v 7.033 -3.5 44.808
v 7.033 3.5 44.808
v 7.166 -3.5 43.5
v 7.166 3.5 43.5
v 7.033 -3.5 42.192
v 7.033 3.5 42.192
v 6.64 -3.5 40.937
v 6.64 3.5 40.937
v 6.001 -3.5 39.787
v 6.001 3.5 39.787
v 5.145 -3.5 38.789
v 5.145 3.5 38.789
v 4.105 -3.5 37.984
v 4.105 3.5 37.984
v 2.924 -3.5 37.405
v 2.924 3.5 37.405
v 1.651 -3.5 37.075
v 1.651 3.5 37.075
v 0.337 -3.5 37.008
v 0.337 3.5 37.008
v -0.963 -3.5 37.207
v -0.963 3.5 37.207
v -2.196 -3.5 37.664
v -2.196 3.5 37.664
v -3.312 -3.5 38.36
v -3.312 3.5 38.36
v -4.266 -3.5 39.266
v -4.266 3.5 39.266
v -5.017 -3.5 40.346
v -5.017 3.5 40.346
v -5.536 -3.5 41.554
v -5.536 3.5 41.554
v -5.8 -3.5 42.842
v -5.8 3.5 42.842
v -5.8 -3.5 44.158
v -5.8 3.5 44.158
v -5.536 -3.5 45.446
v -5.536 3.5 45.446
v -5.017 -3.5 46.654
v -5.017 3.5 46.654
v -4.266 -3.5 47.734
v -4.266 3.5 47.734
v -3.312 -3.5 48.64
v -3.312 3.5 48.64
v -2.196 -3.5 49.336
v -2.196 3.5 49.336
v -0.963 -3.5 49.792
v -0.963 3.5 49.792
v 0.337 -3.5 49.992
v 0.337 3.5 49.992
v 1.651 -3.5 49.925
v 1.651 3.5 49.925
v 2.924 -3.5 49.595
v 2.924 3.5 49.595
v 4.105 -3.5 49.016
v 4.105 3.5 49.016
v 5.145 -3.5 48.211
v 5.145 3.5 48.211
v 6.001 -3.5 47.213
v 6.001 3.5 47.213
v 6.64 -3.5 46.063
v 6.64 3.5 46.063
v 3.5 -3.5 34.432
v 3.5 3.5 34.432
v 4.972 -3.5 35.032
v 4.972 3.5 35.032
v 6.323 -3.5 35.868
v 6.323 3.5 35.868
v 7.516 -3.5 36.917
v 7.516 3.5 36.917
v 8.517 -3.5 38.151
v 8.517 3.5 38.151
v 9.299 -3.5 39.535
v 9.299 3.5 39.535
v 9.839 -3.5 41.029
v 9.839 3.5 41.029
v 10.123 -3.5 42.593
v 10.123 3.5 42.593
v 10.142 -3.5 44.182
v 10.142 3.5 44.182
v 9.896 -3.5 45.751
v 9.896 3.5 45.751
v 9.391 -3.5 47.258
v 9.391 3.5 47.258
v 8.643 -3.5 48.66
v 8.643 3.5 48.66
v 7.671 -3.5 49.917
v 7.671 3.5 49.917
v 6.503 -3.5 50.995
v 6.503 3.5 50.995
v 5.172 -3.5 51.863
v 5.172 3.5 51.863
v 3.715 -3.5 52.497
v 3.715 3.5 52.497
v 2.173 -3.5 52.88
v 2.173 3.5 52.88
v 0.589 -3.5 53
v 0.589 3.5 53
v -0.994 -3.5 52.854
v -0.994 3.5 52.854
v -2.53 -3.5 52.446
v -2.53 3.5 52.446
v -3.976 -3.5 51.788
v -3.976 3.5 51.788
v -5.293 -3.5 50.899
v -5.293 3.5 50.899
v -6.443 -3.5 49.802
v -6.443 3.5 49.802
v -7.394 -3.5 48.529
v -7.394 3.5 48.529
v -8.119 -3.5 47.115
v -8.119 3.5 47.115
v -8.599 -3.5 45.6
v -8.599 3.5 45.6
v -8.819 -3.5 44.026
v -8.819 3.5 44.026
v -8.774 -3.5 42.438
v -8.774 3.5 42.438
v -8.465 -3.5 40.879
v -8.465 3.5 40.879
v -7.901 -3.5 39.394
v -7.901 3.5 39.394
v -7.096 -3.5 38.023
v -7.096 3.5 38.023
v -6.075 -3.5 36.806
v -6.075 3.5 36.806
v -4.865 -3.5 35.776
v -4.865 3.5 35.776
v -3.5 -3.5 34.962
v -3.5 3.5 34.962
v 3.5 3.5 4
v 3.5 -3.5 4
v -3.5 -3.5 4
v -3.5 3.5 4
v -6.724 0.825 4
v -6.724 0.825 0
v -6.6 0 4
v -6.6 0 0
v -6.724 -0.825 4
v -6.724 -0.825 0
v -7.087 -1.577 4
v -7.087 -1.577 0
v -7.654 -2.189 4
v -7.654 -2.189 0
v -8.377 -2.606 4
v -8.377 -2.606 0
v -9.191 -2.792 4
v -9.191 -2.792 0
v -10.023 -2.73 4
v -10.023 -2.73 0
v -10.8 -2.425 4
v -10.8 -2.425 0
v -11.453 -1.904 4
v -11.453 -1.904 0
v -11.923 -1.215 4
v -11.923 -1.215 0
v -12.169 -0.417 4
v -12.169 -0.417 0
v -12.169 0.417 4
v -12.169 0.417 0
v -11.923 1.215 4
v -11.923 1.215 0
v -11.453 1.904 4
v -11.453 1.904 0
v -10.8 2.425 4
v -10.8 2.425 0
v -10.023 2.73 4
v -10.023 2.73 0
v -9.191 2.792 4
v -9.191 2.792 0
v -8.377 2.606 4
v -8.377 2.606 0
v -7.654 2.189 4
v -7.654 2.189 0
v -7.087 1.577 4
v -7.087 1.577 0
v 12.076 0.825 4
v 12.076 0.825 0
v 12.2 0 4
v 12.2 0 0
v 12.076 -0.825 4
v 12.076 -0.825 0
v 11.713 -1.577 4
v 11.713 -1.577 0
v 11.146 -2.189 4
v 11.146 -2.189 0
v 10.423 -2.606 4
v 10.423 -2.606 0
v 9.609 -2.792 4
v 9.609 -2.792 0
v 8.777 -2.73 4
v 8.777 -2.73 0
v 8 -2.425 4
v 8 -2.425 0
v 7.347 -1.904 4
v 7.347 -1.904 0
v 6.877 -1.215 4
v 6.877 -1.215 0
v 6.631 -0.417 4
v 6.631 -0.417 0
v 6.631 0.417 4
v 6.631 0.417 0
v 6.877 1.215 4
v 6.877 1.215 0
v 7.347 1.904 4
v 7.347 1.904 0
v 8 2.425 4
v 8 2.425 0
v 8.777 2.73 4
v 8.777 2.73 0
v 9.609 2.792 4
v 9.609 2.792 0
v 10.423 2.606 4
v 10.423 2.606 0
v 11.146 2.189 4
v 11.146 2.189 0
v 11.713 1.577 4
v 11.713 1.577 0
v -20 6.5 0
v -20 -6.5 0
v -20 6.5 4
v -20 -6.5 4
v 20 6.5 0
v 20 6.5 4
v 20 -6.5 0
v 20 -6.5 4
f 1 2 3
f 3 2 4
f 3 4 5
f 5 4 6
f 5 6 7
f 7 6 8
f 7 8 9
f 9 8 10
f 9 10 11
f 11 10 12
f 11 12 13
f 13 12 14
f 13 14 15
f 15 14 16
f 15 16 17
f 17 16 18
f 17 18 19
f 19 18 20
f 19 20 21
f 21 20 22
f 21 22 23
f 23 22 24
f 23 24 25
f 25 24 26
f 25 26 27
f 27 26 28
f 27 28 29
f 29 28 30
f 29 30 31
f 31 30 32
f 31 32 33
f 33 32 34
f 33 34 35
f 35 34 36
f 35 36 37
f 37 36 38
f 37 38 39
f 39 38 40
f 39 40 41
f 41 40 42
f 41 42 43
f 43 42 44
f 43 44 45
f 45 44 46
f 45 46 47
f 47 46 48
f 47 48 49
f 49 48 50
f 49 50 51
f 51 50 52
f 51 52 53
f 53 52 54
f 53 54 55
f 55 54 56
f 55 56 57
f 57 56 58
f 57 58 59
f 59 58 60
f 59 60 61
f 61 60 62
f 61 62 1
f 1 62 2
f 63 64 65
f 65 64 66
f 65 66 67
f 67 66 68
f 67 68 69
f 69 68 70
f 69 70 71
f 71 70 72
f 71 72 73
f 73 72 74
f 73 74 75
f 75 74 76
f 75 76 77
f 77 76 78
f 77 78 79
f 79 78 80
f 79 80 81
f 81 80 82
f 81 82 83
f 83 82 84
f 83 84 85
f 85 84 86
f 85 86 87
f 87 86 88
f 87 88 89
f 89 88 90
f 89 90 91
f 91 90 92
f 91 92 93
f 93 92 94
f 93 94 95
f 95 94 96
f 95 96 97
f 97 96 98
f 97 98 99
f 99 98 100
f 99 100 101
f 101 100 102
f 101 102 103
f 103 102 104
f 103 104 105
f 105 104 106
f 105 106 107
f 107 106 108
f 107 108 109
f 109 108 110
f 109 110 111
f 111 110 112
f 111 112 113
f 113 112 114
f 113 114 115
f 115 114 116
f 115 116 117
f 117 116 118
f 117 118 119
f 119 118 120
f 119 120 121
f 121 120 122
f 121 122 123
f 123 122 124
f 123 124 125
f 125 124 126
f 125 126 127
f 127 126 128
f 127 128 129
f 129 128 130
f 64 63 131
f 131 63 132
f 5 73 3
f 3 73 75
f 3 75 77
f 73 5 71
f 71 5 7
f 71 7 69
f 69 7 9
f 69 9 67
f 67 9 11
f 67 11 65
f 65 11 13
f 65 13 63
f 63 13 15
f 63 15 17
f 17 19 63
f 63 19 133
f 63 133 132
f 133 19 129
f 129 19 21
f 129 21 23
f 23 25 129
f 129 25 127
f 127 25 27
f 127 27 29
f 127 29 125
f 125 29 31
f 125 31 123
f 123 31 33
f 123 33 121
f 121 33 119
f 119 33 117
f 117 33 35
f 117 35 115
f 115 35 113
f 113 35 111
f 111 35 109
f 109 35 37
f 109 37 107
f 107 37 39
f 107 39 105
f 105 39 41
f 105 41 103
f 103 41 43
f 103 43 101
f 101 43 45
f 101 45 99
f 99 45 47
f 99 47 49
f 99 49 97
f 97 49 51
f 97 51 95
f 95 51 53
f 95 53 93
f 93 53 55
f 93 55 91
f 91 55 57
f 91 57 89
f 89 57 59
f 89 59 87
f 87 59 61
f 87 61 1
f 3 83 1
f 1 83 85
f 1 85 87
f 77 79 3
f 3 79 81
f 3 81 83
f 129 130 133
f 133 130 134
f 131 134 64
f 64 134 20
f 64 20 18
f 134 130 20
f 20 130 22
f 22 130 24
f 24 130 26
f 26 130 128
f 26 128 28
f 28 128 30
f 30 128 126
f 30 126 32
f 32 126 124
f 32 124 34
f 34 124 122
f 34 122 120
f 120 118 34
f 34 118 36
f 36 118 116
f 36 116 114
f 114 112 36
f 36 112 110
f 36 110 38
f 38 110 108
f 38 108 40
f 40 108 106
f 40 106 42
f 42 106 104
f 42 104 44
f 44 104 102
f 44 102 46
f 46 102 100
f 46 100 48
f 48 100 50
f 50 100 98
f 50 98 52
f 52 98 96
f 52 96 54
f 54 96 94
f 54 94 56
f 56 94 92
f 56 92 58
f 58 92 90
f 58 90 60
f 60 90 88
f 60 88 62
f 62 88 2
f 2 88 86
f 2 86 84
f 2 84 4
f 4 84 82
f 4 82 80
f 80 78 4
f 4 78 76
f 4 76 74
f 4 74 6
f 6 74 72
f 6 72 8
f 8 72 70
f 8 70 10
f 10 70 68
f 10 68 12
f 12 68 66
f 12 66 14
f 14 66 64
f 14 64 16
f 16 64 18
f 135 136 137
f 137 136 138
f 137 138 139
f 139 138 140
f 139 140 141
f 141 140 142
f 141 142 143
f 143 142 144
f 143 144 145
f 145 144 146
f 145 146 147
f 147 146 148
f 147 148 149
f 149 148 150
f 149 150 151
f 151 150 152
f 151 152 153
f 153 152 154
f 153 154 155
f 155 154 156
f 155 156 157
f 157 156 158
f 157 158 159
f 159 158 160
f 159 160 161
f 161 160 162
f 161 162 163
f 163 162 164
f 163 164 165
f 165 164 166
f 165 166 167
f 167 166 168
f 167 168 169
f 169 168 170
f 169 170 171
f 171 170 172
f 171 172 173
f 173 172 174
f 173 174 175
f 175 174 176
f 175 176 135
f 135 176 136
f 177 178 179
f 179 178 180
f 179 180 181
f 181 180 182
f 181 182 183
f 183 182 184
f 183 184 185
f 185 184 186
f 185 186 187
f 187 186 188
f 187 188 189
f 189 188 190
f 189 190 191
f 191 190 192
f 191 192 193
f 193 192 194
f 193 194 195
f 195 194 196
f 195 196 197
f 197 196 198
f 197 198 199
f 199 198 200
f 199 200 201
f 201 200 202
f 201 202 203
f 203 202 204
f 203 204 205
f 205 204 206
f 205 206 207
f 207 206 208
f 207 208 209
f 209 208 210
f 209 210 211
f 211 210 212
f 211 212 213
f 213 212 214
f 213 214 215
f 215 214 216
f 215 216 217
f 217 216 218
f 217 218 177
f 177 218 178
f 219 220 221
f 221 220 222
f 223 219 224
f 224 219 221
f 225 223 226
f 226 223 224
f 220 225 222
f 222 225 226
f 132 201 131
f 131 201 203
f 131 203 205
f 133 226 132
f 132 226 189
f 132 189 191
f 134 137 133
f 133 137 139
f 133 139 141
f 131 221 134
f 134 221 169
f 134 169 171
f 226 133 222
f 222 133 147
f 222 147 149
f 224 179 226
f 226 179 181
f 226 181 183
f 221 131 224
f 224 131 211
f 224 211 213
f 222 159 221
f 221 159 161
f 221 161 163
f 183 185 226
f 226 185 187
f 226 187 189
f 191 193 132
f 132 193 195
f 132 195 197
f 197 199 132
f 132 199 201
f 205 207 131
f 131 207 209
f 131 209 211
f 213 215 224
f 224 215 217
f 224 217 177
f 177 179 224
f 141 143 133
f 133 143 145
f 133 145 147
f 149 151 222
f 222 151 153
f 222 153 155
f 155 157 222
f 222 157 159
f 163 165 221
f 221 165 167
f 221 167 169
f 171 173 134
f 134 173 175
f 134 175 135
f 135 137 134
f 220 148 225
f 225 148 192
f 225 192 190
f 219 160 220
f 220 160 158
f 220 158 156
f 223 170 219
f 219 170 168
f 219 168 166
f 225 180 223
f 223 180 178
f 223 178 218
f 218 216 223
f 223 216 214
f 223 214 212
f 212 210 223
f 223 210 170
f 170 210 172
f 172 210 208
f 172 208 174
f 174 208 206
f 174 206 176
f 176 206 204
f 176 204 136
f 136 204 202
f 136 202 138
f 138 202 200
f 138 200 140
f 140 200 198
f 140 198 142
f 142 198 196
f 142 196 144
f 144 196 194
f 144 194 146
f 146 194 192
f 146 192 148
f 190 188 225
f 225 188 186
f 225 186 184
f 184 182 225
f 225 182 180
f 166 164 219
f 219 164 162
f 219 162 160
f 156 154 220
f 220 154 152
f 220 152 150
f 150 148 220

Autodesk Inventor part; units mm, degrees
ref_plane "YZ Plane" through (0, 0, 0) normal (1, 0, 0) x (0, 1, 0)
ref_plane "XZ Plane" through (0, 0, 0) normal (0, 1, 0) x (-1, 0, 0)
sketch "草圖1" plane through (0, 0, 0) normal (0, 0, 1) x (1, 0, 0)
  line L0 (-20, 6.5) -> (20, 6.5)
  line L1 (20, 6.5) -> (20, -6.5)
  line L2 (20, -6.5) -> (-20, -6.5)
  line L3 (-20, -6.5) -> (-20, 6.5)
  line L4 (-20, 6.5) -> (20, -6.5) construction
  line L5 (20, 6.5) -> (-20, -6.5) construction
  circle A0 centre (-9.4, 0) radius 2.8
  circle A1 centre (9.4, 0) radius 2.8
  point P0 (0, 0)
  dimension "d0" = 40
  dimension "d1" = 13
  dimension "d2" = 5.6
  dimension "d3" = 5.6
extrude "擠出1" add sketch "草圖1" along normal blind 4
sketch "草圖3" plane through (0, 0, 4) normal (0, 0, 1) x (1, 0, 0)
  line L0 (3.5, -3.5) -> (-3.5, -3.5)
  line L1 (-3.5, -3.5) -> (-3.5, 3.5)
  line L2 (-3.5, 3.5) -> (3.5, 3.5)
  line L3 (3.5, 3.5) -> (3.5, -3.5)
  line L4 (3.5, -3.5) -> (-3.5, 3.5) construction
  line L5 (-3.5, -3.5) -> (3.5, 3.5) construction
  point P0 (0, 0)
  dimension "d8" = 7
  dimension "d9" = 7
extrude "擠出2" add sketch "草圖3" along normal blind 33
ref_plane "工作平面2" through (-3.5, 0, 4) normal (0, 1, 0) x (1, 0, 0)
sketch "草圖4" plane through (-3.5, 0, 4) normal (0, 1, 0) x (1, 0, 0)
  circle A0 centre (4.1663, -39.5) radius 9.5
  circle A1 centre (4.1663, -39.5) radius 6.5
  dimension "d14" = 19
  dimension "d15" = 13
extrude "擠出3" add sketch "草圖4" along normal mid plane 7
properties part number "T字形固定件"
